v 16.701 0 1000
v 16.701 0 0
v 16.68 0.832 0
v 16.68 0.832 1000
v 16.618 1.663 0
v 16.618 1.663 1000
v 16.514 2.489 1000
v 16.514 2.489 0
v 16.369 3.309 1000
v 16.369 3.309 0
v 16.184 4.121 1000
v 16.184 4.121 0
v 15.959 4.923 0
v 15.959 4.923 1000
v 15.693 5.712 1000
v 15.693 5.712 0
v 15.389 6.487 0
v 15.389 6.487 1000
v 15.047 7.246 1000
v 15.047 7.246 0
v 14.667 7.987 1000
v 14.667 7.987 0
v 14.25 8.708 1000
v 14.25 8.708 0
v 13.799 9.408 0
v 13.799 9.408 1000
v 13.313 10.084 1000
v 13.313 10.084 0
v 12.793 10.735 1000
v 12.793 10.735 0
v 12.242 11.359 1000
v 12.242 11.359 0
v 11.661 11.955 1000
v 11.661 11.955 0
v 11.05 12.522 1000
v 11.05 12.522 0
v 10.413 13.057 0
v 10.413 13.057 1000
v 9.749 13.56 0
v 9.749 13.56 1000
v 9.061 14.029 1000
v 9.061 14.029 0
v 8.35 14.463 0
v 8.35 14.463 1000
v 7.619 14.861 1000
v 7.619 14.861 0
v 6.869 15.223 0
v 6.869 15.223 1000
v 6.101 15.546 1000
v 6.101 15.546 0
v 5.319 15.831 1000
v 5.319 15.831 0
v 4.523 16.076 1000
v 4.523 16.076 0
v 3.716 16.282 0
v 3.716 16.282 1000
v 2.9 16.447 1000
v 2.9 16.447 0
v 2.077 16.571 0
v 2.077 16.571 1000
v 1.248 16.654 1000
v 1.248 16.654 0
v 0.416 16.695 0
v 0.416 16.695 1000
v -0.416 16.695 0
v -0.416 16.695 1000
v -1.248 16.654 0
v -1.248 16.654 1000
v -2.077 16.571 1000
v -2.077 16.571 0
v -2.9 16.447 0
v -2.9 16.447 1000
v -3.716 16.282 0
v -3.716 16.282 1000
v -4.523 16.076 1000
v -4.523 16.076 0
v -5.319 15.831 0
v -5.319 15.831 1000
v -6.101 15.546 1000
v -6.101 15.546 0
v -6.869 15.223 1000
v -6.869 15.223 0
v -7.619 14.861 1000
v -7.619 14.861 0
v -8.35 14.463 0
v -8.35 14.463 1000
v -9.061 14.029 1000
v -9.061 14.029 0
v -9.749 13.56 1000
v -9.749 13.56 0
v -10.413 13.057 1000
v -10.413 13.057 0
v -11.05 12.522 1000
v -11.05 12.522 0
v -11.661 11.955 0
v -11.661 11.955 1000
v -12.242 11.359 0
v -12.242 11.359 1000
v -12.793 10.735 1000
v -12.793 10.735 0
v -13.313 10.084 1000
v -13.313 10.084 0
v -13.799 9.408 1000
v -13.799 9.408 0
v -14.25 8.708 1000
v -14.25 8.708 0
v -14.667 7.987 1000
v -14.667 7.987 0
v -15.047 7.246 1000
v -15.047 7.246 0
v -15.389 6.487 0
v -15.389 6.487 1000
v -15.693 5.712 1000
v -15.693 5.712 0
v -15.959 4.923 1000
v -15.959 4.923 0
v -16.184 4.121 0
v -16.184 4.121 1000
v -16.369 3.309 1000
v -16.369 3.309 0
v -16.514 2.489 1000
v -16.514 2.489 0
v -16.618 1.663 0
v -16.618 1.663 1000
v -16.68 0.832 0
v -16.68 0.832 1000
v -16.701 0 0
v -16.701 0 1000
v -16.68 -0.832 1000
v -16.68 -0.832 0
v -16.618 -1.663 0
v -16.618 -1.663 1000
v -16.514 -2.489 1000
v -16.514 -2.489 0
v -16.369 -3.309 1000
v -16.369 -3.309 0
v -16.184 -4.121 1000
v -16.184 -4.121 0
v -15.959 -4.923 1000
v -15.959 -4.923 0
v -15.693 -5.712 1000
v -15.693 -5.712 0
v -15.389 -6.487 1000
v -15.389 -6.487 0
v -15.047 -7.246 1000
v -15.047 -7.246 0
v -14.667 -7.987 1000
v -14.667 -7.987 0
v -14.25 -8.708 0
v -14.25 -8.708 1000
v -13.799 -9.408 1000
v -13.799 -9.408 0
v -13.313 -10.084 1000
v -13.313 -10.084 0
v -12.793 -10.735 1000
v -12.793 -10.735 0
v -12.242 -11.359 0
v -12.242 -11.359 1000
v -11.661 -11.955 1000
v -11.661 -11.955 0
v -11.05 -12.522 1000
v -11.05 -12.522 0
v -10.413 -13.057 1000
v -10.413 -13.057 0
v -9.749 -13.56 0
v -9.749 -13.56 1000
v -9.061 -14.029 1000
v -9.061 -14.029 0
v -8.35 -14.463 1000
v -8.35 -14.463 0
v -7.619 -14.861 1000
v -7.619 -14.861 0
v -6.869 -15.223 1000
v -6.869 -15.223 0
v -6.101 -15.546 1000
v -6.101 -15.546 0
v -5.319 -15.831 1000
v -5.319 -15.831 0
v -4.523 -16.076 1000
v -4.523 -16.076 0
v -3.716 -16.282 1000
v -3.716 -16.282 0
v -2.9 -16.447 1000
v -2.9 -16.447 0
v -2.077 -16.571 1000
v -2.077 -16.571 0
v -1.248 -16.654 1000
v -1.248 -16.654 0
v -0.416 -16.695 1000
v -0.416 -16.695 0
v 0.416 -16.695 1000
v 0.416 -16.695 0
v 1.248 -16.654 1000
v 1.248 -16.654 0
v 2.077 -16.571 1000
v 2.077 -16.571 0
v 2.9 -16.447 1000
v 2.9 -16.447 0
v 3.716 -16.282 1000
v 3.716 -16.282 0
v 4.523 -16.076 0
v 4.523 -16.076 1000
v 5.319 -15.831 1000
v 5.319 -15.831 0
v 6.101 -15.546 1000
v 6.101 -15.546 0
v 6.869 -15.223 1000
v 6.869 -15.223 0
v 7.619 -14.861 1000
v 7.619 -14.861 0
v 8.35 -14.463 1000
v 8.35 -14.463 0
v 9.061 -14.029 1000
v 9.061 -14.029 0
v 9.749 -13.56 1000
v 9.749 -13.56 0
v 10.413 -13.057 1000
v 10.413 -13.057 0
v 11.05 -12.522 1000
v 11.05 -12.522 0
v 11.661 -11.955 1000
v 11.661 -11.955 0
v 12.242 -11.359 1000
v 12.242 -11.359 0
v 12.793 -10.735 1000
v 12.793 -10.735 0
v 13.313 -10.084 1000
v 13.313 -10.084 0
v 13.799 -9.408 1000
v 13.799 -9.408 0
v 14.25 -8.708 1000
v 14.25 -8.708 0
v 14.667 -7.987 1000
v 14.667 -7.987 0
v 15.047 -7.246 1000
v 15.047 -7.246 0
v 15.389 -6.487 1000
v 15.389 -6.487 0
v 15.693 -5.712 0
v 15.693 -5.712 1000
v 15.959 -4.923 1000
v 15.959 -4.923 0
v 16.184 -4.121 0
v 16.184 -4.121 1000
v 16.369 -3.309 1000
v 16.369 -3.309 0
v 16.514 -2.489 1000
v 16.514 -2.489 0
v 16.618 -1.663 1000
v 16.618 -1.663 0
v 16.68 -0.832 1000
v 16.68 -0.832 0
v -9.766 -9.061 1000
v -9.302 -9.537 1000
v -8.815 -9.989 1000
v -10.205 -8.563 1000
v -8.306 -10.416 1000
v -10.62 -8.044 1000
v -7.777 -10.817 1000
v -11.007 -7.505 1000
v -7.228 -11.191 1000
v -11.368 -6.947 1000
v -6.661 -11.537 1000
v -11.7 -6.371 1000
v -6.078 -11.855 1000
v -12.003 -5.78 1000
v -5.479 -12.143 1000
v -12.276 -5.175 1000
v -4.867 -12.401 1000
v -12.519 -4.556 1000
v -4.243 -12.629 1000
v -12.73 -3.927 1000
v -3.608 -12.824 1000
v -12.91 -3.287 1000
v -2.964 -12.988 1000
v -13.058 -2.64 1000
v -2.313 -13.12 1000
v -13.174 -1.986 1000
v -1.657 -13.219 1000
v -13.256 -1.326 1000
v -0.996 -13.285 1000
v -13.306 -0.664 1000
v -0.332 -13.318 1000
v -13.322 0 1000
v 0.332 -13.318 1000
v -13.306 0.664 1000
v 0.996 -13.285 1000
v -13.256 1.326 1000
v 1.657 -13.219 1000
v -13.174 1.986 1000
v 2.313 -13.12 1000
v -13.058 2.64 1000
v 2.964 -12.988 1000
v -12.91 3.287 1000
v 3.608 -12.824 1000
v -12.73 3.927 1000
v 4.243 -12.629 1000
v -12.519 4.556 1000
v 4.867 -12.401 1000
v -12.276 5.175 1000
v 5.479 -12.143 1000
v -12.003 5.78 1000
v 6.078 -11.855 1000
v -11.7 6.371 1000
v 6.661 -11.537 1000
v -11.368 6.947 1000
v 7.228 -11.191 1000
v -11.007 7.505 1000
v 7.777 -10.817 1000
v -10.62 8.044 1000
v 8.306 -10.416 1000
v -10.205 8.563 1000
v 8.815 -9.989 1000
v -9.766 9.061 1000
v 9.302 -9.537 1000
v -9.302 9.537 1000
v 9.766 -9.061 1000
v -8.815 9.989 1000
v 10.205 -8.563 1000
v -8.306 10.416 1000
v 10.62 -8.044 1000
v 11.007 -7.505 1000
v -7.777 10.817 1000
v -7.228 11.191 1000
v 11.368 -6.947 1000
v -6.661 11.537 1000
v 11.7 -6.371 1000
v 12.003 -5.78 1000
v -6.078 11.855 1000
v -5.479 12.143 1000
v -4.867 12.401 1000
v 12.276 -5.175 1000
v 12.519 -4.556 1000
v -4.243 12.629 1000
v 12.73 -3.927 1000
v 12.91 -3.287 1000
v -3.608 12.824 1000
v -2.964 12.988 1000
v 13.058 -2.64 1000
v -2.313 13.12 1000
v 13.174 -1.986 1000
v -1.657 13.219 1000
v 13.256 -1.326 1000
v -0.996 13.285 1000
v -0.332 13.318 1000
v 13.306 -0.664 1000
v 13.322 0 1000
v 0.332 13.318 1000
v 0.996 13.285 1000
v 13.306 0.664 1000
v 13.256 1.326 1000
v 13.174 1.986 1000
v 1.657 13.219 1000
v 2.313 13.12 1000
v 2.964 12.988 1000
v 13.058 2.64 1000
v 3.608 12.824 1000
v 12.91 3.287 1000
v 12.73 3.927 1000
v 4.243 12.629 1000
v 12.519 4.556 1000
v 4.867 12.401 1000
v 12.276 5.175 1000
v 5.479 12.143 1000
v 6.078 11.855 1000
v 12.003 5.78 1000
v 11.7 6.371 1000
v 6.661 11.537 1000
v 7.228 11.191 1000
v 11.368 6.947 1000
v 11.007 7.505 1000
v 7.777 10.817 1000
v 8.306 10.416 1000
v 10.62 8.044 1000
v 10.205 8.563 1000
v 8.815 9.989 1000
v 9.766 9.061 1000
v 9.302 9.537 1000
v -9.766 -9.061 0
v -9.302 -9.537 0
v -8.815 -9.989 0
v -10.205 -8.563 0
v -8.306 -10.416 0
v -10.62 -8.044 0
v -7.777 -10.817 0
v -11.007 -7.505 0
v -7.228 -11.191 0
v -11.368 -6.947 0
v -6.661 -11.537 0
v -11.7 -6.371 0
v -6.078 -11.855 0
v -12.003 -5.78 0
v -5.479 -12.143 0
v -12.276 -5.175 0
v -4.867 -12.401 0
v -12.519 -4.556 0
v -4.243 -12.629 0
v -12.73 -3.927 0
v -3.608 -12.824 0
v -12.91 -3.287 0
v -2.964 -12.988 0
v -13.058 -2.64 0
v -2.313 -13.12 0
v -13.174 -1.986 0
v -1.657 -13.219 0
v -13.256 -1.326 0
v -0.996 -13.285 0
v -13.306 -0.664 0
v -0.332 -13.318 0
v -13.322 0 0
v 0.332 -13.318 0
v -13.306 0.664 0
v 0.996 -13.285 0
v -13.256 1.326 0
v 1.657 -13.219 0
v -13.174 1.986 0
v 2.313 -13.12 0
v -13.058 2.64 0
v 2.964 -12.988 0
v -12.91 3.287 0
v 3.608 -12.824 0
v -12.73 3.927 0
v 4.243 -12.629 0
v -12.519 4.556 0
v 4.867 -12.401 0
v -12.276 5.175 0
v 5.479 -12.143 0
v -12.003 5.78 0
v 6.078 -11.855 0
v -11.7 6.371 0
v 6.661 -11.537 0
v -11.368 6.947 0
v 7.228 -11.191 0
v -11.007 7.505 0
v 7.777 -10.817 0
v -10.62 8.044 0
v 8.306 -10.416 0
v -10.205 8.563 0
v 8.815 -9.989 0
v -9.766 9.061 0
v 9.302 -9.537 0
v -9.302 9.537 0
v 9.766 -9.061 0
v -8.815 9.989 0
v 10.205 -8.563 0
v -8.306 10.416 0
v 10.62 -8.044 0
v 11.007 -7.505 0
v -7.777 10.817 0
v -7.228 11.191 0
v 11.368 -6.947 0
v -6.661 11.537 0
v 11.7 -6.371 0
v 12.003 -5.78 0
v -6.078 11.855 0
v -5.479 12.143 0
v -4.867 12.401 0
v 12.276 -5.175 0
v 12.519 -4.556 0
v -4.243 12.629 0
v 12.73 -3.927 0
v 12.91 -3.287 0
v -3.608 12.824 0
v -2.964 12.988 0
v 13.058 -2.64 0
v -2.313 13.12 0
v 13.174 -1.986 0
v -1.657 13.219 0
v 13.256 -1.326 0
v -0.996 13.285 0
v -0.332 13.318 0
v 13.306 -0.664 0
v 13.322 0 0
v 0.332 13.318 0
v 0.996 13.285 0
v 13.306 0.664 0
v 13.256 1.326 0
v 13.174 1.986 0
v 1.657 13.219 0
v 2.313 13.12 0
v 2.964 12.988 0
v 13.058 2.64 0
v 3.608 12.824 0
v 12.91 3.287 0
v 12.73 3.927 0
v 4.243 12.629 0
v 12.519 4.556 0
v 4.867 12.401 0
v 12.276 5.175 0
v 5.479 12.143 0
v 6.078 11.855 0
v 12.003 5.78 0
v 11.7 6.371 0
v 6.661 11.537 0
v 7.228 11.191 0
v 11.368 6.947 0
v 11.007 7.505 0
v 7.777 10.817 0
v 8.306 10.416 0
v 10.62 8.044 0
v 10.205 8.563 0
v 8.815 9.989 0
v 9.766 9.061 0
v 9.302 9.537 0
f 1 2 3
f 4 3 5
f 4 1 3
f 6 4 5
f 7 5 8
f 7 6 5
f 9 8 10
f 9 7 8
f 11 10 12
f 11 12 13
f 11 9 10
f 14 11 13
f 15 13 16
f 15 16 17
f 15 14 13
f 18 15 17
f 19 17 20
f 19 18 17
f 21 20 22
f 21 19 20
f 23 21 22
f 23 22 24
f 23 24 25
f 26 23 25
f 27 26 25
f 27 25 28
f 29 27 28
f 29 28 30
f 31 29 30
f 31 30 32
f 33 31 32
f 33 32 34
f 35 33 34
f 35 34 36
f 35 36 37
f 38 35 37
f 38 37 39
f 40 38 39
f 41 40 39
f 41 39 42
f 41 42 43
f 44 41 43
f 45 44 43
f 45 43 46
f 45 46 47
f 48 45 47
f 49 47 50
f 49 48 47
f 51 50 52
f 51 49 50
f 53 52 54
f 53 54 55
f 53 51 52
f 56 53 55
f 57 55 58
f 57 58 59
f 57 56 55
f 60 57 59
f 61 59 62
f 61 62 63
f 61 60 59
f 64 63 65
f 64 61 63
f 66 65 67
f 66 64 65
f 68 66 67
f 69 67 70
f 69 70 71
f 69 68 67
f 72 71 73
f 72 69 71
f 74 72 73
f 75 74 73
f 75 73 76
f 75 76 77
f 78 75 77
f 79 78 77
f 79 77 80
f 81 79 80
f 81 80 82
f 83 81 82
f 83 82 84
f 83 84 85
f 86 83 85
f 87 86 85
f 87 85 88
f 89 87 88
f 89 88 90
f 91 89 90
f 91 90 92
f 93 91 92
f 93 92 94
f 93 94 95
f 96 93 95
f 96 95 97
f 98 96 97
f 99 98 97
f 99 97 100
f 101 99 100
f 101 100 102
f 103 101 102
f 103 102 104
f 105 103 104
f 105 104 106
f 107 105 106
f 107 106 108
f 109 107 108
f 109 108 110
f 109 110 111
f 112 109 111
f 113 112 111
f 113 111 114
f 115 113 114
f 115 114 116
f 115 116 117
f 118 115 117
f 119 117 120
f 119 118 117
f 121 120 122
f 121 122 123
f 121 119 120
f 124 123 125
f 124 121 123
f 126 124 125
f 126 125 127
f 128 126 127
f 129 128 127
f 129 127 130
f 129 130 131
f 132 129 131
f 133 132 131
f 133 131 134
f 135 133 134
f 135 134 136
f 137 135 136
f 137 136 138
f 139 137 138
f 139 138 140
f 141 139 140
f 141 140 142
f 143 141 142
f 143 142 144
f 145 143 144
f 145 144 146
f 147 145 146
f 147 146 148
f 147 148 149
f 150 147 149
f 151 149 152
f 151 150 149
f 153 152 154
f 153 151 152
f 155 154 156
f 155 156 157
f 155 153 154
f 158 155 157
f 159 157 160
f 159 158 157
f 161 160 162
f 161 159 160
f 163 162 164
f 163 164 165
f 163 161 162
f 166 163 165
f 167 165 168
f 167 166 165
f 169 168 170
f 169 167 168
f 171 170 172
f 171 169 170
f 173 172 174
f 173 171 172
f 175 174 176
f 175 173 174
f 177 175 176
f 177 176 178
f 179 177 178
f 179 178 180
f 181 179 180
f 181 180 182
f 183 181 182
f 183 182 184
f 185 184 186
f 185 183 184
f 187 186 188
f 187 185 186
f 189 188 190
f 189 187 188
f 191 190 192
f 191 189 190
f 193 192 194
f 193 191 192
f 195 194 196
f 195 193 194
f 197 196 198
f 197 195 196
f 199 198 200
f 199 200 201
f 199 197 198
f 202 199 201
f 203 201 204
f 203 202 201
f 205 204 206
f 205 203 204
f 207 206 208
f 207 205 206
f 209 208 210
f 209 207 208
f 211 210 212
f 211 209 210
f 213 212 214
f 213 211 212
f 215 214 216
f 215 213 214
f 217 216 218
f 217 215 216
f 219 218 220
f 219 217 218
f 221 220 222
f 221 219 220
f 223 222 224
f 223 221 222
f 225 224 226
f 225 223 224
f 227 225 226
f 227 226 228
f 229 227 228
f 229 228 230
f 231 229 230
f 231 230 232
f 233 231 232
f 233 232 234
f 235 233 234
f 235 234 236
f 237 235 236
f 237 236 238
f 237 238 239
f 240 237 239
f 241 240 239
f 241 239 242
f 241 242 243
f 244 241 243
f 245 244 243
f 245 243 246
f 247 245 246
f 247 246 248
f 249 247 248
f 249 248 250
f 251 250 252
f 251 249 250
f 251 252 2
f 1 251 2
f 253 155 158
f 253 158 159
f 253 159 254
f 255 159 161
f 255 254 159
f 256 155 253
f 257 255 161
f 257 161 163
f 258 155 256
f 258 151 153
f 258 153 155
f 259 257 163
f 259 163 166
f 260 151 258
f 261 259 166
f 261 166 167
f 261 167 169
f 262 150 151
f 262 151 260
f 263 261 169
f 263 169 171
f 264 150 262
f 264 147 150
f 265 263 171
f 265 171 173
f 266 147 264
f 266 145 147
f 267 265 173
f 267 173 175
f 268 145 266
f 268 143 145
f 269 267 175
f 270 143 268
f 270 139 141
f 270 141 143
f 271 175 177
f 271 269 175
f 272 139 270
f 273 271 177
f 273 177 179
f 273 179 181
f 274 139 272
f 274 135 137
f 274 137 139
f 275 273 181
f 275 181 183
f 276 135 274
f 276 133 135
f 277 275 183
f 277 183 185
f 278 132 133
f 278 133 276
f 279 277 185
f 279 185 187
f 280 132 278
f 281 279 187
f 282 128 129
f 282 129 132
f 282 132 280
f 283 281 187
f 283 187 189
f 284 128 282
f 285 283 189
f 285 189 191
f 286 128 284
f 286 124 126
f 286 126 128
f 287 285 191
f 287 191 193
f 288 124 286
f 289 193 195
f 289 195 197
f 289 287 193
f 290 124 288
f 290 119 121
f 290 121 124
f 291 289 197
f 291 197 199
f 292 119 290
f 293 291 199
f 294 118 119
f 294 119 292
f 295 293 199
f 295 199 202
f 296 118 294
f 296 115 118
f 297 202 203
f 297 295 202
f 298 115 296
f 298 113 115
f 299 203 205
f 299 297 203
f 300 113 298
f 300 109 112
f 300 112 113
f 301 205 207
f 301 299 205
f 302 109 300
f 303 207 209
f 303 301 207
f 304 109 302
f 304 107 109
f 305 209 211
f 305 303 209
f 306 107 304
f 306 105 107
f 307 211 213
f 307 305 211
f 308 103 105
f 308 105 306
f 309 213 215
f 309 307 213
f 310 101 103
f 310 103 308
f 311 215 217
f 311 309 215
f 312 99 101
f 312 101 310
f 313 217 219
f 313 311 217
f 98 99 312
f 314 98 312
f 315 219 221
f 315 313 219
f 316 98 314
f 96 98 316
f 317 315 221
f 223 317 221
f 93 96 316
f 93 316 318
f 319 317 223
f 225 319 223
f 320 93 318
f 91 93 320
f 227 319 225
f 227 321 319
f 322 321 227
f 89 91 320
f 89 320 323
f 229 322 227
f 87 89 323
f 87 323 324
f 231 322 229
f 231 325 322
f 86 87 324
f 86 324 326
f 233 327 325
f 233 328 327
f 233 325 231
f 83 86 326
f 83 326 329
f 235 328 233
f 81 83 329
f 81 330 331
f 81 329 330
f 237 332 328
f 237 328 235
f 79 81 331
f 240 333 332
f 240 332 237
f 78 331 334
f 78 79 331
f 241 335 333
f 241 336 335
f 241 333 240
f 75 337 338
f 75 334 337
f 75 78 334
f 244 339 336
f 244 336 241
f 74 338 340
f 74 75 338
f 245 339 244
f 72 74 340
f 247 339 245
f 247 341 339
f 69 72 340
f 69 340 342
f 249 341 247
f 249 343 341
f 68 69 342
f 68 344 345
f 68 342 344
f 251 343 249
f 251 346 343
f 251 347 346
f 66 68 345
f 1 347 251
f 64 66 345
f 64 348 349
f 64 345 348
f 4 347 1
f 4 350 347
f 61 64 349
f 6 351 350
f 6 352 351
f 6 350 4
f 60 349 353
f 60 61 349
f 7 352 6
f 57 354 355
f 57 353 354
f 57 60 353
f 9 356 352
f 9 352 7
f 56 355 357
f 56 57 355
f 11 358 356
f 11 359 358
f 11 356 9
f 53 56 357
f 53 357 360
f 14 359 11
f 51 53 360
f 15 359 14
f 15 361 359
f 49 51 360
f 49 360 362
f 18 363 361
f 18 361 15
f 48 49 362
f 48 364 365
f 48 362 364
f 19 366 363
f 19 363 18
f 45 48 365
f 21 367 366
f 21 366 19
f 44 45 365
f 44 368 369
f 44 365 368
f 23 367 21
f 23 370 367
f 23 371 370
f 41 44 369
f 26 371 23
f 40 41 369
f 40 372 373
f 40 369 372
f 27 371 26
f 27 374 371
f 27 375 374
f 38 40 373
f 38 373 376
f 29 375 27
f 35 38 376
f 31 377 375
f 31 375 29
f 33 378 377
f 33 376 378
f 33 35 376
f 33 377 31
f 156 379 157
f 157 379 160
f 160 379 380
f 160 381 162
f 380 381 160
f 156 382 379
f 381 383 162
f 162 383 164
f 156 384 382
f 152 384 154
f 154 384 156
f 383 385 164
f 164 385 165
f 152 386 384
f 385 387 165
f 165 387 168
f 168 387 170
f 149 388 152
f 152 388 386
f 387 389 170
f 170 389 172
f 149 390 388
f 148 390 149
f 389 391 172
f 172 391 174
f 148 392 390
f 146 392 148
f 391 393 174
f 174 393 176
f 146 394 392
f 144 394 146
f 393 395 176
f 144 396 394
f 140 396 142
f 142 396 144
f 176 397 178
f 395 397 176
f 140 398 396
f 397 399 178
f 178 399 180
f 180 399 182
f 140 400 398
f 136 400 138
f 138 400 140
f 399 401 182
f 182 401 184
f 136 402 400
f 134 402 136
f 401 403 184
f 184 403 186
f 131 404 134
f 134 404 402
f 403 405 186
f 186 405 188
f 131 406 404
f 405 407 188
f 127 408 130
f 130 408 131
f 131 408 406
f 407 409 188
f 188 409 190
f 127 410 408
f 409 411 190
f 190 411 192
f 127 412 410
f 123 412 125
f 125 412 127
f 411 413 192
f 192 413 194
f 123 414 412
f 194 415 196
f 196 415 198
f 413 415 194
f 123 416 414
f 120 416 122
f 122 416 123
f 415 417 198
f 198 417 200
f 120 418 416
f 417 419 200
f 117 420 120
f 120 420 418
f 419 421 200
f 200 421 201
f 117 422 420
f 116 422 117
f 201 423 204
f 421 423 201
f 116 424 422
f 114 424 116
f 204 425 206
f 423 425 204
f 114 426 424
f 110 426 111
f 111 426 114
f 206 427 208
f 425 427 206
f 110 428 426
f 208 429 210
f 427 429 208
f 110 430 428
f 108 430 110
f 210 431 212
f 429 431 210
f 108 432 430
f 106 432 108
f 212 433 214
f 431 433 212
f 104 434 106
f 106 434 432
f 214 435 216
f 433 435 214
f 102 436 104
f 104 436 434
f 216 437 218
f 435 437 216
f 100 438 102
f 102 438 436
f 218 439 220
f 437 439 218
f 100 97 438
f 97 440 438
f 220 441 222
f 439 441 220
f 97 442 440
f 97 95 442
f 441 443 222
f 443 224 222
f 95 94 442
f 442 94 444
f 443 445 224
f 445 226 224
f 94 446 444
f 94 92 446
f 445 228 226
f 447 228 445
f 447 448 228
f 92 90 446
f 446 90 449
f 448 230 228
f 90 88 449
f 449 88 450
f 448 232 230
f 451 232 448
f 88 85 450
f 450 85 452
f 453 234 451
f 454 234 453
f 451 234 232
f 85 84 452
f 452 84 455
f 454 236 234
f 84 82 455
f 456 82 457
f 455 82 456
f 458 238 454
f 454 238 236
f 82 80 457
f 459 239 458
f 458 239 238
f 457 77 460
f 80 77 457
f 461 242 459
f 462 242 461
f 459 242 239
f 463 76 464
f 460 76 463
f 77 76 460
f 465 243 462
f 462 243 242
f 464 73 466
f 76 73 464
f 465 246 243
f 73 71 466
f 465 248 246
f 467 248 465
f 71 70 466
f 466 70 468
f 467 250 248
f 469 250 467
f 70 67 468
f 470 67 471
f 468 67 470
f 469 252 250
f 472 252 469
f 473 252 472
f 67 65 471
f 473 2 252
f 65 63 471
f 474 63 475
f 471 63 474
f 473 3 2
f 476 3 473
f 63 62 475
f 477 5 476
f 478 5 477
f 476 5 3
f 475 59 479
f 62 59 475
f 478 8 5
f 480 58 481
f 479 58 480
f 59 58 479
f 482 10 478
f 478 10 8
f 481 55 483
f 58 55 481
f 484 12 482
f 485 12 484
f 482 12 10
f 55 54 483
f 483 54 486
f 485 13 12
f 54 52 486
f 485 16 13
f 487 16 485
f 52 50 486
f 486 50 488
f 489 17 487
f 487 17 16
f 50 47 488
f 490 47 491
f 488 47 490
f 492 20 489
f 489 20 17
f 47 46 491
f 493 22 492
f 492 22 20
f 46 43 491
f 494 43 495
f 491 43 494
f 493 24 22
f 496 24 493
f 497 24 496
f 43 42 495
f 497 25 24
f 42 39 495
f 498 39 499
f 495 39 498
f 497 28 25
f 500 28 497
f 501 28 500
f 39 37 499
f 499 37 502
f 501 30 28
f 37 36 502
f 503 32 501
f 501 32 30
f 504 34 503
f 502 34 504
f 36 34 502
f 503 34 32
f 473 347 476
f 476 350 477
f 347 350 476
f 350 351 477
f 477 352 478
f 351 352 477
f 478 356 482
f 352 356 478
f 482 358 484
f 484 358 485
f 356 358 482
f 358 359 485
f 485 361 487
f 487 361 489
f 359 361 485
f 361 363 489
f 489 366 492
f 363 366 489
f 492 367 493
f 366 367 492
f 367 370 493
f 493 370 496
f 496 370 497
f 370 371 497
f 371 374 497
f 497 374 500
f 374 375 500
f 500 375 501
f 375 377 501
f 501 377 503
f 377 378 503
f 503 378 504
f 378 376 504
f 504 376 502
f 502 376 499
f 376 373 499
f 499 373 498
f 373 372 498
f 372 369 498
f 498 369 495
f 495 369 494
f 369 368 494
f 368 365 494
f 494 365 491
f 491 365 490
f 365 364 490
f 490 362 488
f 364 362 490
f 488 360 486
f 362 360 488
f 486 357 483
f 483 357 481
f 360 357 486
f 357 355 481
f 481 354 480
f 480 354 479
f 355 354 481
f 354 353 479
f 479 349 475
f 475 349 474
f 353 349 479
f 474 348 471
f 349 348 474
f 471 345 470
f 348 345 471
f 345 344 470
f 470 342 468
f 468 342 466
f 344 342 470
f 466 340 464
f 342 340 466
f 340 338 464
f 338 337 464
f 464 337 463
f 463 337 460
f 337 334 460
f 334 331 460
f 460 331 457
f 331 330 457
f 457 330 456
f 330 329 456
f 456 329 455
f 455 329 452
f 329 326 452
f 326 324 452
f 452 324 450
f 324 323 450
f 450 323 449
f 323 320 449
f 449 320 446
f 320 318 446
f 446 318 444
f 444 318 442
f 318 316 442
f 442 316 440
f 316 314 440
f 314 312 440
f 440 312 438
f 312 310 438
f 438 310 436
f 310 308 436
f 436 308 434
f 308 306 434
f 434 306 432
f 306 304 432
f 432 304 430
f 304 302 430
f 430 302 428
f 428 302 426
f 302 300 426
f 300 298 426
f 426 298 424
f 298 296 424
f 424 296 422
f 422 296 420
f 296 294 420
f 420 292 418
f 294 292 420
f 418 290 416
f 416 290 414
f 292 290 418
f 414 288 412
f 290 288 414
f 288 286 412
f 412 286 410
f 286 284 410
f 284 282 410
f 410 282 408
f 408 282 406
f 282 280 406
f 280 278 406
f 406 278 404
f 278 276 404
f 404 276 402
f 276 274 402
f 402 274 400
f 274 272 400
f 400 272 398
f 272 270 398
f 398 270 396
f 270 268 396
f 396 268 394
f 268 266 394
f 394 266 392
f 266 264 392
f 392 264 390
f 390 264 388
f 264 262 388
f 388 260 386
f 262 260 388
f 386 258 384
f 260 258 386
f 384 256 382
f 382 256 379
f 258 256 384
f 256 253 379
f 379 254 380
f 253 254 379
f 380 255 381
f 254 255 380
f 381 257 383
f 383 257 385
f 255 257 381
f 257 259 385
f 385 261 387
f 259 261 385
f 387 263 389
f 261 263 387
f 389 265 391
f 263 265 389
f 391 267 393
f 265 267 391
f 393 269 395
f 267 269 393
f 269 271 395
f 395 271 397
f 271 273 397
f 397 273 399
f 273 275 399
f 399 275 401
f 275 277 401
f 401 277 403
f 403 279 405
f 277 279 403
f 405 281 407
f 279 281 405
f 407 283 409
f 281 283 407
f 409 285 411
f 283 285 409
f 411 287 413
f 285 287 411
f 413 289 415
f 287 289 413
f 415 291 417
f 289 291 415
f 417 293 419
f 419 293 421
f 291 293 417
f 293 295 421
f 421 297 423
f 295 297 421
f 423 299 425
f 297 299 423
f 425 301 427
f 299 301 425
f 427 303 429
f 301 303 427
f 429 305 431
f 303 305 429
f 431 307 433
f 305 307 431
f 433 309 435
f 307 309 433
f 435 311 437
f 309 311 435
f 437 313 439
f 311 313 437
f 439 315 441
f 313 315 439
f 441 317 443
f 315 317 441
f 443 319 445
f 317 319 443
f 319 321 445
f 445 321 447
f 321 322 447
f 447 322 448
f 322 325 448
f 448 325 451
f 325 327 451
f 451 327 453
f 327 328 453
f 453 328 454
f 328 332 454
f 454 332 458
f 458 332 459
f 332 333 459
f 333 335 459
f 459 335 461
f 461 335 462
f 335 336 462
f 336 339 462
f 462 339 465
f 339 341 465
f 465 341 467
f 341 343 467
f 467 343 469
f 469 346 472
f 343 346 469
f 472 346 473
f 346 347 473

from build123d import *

# Parameters (mm, degrees)
INNERCYLINDER_R     = 13.3223
INNERCYLINDER_DEPTH = 1200
OUTERCYLINDER_R     = 16.7005
OUTERCYLINDER_DEPTH = 1000


with BuildPart() as innercylinder:
    # InnerCylinder → InnerCylinder (new body)
    with BuildSketch(Plane.XY.offset(-100)):
        Circle(INNERCYLINDER_R)
    extrude(amount=INNERCYLINDER_DEPTH)


with BuildPart() as pipe:
    # OuterCylinder → OuterCylinder (new body)
    with BuildSketch(Plane.XY):
        Circle(OUTERCYLINDER_R)
    extrude(amount=OUTERCYLINDER_DEPTH)

    # Pipe: cut InnerCylinder
    add(innercylinder.part, mode=Mode.SUBTRACT)


solid = pipe.part
